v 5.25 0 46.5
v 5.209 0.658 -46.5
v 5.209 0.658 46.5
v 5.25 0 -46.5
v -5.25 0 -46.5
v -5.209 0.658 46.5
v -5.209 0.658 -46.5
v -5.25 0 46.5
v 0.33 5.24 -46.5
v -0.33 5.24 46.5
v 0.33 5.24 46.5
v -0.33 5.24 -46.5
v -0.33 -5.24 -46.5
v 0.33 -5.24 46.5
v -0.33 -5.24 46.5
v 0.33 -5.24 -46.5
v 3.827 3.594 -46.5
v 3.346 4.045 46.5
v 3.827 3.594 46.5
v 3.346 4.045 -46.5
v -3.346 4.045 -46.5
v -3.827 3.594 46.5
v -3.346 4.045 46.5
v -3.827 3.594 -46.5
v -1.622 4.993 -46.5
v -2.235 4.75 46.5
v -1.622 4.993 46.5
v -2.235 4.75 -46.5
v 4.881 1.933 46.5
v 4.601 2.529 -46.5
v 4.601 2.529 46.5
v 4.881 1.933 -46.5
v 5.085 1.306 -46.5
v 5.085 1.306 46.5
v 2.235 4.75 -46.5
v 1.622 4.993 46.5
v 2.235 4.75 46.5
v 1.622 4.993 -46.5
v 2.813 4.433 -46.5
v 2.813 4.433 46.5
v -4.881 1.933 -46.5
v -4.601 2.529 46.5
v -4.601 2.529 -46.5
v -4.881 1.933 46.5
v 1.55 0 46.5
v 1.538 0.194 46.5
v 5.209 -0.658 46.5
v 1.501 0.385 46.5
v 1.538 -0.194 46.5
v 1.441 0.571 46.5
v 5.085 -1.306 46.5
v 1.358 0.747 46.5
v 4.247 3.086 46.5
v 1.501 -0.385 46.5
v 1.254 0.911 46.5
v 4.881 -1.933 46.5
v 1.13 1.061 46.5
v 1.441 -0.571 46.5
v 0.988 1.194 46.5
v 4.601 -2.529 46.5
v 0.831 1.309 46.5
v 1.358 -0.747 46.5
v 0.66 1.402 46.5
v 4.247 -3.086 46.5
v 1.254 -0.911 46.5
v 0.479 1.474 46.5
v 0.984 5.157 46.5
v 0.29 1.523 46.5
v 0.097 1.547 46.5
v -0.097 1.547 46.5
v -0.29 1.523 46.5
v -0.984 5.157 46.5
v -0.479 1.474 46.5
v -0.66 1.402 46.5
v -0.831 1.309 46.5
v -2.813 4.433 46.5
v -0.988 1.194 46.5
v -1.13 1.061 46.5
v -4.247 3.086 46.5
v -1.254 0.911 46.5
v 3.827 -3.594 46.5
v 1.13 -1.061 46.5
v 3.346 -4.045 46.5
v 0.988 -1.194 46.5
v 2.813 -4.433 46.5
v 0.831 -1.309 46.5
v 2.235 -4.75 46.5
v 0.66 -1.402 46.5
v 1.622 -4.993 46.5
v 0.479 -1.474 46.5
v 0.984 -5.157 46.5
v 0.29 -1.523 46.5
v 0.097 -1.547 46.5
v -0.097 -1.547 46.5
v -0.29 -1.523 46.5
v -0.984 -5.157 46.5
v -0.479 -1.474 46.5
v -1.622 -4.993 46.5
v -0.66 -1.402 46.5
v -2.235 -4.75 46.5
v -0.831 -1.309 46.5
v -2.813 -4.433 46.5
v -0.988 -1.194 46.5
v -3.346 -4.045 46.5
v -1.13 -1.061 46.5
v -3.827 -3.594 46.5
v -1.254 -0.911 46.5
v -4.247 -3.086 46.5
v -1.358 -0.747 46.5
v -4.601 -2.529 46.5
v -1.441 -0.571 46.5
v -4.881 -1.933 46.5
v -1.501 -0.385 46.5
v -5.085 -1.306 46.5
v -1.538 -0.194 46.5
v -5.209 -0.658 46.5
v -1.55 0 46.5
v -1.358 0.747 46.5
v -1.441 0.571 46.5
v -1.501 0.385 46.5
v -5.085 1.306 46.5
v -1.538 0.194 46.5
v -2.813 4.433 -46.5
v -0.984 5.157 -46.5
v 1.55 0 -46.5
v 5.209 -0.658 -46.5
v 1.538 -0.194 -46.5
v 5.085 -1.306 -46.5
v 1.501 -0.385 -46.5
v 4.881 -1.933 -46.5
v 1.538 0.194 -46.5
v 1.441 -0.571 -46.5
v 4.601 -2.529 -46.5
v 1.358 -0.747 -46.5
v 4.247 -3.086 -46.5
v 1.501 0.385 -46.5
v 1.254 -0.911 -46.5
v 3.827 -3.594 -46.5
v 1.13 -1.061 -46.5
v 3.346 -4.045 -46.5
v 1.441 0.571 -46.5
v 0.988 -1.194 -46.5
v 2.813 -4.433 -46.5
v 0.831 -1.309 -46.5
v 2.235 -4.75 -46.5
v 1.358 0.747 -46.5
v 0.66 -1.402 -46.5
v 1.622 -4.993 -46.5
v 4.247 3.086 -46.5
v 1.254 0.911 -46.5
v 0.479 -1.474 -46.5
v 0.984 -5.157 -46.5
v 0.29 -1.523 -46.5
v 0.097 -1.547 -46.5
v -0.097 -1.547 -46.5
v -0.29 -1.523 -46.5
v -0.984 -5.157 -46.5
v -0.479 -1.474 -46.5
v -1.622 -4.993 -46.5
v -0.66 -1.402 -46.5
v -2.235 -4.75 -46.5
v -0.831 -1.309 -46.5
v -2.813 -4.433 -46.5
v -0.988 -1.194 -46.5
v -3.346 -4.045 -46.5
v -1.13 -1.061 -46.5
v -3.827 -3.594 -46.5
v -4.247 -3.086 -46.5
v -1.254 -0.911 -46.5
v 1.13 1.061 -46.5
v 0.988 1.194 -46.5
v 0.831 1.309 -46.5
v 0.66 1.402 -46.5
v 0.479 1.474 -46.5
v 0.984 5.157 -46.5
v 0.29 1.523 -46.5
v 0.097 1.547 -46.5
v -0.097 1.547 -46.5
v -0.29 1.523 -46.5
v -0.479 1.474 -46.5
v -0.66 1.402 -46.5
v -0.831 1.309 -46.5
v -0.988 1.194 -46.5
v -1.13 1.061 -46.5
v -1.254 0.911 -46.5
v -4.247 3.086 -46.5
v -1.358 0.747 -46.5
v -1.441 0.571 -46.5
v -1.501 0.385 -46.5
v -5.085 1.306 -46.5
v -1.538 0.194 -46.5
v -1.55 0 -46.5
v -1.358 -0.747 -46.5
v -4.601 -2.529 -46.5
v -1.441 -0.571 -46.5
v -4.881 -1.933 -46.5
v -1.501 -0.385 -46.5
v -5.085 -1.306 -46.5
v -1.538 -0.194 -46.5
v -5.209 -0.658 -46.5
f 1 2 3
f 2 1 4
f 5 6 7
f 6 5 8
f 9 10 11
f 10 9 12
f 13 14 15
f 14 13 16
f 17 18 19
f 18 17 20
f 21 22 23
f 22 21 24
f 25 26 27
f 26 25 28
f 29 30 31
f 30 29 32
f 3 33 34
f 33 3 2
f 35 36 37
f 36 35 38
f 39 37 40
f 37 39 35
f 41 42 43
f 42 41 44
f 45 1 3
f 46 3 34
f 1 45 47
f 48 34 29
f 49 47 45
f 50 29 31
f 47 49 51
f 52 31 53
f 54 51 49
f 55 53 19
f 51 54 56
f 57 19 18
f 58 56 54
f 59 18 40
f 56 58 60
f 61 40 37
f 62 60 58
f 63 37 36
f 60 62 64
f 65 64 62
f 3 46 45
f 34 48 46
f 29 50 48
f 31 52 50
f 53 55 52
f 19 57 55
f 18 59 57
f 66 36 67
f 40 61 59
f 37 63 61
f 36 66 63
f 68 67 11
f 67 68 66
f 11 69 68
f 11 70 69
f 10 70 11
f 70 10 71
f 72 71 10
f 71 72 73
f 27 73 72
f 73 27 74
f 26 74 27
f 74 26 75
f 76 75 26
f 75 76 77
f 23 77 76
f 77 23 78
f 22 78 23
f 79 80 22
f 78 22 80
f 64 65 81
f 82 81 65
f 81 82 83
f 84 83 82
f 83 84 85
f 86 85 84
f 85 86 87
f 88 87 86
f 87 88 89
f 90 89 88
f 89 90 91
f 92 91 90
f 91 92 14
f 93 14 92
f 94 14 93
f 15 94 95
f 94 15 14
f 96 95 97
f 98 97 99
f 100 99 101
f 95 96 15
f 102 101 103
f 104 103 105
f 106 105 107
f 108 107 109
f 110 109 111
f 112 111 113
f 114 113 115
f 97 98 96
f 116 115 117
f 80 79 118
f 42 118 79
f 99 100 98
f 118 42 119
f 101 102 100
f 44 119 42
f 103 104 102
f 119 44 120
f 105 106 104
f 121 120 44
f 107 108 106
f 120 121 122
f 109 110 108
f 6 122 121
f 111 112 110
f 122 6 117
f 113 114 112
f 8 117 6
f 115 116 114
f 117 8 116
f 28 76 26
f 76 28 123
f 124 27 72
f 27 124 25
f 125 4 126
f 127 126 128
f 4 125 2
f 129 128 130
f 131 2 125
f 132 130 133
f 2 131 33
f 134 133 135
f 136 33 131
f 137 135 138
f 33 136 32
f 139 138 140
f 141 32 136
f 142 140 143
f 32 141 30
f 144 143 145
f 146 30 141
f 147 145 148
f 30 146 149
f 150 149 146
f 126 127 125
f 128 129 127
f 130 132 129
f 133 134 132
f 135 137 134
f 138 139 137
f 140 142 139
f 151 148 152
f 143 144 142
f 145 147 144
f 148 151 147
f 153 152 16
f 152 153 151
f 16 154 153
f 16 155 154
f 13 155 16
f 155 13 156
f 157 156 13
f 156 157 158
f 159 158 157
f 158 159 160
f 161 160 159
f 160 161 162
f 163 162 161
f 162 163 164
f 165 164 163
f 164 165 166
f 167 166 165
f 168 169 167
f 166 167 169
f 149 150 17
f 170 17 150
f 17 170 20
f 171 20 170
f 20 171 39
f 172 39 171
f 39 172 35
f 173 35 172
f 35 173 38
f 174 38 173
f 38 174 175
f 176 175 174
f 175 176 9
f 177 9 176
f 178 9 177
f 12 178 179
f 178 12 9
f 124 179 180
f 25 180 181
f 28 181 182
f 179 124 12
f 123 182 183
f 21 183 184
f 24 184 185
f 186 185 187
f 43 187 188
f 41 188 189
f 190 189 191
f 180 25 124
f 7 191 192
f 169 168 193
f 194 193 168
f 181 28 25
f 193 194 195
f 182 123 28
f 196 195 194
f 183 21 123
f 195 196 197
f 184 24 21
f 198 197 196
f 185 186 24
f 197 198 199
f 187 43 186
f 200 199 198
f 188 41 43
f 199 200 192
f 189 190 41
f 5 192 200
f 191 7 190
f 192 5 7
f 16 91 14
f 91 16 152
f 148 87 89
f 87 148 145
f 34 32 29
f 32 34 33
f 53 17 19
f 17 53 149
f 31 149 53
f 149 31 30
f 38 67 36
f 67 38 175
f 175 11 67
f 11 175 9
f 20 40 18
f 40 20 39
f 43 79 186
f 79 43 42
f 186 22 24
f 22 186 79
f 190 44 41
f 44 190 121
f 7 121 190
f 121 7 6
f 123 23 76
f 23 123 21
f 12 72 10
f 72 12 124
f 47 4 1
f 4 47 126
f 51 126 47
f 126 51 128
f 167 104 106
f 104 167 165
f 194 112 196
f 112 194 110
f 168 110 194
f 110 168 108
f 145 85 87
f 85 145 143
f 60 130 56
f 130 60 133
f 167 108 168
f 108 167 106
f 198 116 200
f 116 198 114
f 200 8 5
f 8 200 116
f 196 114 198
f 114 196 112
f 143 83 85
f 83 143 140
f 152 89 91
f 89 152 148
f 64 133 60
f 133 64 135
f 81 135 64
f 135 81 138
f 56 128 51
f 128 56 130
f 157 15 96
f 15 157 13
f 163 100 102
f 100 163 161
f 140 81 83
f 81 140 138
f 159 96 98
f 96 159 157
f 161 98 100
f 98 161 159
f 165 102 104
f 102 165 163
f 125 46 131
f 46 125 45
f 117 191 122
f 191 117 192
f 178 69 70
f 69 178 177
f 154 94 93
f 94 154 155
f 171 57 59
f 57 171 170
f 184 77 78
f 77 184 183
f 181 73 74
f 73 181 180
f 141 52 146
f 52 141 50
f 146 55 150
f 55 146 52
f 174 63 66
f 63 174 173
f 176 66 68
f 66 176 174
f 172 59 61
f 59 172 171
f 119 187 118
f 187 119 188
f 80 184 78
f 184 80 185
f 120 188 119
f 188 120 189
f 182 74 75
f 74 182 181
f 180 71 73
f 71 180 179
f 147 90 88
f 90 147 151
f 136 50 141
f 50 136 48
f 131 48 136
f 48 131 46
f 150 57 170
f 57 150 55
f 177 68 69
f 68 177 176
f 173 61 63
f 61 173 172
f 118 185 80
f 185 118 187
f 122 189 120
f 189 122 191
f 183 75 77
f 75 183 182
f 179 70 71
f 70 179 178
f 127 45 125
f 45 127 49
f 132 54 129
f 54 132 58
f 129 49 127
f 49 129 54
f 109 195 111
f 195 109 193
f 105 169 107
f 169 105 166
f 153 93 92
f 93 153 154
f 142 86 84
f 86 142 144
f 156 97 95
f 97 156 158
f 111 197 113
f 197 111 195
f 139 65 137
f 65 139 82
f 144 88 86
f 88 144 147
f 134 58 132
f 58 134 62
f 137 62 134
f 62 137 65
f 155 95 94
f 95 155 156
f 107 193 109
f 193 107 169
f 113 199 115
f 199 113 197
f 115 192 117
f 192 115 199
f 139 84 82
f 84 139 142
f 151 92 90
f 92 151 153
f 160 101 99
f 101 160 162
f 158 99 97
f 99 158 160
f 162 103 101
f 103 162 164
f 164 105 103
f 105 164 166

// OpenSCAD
$fn = 50;


difference() {
	union() {
		translate(v = [0, 0, -46.5000000000]) {
			cylinder(h = 93, r = 5.2500000000);
		}
	}
	union() {
		translate(v = [0, 0, -100.0000000000]) {
			cylinder(h = 200, r = 1.5500000000);
		}
	}
}
